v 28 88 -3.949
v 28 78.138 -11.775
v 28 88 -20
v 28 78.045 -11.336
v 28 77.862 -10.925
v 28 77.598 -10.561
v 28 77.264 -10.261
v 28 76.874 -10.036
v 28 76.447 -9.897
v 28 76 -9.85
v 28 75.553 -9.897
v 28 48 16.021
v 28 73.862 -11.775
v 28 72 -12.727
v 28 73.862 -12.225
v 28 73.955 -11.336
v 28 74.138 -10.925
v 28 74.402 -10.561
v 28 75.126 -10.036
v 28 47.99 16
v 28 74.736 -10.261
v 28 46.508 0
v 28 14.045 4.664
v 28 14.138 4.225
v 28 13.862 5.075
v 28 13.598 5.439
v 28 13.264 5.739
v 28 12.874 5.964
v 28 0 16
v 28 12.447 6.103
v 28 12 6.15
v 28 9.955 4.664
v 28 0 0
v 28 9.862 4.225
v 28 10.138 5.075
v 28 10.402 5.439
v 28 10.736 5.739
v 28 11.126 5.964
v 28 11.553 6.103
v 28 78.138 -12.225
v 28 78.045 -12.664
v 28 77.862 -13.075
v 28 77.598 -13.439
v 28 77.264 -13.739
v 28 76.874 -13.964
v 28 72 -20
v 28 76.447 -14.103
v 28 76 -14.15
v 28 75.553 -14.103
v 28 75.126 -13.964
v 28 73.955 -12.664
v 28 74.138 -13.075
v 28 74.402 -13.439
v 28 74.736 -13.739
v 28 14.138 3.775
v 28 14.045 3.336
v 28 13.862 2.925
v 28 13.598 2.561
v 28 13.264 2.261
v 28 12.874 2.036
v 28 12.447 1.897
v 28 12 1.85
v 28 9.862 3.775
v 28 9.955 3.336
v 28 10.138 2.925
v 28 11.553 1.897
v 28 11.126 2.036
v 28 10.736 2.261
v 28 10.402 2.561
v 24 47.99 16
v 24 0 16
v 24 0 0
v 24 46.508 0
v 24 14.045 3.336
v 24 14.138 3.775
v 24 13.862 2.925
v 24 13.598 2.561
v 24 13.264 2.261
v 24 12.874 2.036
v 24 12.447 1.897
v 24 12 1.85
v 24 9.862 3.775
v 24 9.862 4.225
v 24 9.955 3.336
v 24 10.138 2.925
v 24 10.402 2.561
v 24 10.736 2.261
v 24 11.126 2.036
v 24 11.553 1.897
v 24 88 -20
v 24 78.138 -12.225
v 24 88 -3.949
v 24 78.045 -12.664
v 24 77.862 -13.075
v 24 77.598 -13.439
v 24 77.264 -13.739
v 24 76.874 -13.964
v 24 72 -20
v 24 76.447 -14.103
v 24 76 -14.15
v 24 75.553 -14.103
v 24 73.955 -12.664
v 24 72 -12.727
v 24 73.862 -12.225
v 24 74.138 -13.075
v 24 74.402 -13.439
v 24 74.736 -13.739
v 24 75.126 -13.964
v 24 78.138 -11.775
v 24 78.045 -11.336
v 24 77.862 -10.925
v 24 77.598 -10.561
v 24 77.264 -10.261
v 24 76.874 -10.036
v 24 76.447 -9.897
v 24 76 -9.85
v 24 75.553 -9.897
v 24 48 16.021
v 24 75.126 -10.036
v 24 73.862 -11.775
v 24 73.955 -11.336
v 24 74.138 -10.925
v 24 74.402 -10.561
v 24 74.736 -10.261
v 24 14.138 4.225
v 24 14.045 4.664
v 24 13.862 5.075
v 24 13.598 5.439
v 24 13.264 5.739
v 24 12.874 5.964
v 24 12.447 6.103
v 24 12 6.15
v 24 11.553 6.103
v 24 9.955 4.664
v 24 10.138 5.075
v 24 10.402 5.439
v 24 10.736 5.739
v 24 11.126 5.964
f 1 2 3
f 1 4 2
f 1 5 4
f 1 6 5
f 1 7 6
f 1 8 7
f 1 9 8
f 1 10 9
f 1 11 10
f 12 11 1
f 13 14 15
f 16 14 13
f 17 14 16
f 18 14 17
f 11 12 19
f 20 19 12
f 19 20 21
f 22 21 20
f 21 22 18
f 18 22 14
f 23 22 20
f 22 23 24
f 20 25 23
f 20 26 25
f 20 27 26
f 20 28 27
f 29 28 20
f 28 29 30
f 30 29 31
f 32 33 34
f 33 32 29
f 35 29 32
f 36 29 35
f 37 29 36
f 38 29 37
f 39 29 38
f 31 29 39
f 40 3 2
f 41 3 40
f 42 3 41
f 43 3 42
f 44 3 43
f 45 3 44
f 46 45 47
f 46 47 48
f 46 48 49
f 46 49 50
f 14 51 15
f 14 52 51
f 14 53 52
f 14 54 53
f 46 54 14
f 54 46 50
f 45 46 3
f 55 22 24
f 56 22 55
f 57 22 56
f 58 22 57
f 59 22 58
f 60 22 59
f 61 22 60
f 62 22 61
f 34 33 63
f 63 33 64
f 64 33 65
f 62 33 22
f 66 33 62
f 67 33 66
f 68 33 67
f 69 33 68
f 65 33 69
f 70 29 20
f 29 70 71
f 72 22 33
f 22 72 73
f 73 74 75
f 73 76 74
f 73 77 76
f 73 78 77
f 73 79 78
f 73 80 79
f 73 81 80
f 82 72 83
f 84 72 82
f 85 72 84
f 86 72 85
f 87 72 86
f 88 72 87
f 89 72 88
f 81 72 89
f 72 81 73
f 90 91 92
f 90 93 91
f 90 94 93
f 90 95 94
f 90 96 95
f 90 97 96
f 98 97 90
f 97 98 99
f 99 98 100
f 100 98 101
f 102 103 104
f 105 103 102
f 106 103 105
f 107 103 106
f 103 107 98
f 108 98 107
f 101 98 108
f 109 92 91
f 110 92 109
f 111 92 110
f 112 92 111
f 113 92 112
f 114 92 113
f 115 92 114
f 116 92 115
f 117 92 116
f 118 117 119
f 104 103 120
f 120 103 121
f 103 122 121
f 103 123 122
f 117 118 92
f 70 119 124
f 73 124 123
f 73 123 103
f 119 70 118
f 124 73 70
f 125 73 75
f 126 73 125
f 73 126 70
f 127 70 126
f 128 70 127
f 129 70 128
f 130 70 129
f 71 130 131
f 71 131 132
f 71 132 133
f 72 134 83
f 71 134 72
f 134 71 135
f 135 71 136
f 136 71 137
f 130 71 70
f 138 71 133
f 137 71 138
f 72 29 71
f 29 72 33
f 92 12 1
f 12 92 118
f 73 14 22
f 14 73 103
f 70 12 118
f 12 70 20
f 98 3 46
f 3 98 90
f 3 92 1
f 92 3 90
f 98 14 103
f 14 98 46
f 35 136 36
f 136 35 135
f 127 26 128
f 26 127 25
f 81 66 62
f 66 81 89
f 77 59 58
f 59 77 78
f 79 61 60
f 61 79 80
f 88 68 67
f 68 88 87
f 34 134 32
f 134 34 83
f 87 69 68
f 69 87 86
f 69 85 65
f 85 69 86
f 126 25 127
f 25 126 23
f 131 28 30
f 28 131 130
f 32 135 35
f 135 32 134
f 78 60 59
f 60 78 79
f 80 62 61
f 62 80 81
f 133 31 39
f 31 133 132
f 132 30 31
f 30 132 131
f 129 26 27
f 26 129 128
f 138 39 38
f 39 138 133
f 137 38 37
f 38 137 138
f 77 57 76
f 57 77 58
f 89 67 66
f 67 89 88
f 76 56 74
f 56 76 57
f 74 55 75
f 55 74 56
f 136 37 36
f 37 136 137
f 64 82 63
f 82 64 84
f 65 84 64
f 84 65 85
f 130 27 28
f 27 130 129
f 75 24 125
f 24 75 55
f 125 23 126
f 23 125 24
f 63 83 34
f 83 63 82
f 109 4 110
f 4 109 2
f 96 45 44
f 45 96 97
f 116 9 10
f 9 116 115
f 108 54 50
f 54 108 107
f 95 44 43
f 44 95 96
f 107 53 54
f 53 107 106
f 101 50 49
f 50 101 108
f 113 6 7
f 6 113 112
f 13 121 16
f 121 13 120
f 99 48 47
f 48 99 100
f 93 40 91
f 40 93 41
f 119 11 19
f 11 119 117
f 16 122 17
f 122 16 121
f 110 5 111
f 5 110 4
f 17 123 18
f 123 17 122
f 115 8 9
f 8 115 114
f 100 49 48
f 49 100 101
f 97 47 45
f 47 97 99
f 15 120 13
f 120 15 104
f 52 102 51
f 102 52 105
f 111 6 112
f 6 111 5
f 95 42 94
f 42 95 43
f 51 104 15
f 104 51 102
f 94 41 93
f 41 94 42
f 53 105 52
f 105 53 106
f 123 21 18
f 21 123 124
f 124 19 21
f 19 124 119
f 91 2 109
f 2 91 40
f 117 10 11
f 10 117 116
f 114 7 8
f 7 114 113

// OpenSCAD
// entry track guard rail
difference() {
union() {
    // horizontal piece
    translate([24,0,0])
    cube([4,48,16]);
    
    // angled piece
    translate([24,41.3,2.6])
    rotate([333.47,0,0])
    cube([4,47,15]);
    
    // vertical piece
    translate([24,72,-20])
    cube([4,16,12]);
}
    // left hole
    translate([-4,12,4])
    rotate([0,90,0])
    cylinder(r=2.15,60, $fn=30);

    // far right hole
    translate([-4,76,-12])
    rotate([0,90,0])
    cylinder(r=2.15,60, $fn=30);

    // clean up right side
    translate([0,88,-30])
    cube([40,10,40]);
}
